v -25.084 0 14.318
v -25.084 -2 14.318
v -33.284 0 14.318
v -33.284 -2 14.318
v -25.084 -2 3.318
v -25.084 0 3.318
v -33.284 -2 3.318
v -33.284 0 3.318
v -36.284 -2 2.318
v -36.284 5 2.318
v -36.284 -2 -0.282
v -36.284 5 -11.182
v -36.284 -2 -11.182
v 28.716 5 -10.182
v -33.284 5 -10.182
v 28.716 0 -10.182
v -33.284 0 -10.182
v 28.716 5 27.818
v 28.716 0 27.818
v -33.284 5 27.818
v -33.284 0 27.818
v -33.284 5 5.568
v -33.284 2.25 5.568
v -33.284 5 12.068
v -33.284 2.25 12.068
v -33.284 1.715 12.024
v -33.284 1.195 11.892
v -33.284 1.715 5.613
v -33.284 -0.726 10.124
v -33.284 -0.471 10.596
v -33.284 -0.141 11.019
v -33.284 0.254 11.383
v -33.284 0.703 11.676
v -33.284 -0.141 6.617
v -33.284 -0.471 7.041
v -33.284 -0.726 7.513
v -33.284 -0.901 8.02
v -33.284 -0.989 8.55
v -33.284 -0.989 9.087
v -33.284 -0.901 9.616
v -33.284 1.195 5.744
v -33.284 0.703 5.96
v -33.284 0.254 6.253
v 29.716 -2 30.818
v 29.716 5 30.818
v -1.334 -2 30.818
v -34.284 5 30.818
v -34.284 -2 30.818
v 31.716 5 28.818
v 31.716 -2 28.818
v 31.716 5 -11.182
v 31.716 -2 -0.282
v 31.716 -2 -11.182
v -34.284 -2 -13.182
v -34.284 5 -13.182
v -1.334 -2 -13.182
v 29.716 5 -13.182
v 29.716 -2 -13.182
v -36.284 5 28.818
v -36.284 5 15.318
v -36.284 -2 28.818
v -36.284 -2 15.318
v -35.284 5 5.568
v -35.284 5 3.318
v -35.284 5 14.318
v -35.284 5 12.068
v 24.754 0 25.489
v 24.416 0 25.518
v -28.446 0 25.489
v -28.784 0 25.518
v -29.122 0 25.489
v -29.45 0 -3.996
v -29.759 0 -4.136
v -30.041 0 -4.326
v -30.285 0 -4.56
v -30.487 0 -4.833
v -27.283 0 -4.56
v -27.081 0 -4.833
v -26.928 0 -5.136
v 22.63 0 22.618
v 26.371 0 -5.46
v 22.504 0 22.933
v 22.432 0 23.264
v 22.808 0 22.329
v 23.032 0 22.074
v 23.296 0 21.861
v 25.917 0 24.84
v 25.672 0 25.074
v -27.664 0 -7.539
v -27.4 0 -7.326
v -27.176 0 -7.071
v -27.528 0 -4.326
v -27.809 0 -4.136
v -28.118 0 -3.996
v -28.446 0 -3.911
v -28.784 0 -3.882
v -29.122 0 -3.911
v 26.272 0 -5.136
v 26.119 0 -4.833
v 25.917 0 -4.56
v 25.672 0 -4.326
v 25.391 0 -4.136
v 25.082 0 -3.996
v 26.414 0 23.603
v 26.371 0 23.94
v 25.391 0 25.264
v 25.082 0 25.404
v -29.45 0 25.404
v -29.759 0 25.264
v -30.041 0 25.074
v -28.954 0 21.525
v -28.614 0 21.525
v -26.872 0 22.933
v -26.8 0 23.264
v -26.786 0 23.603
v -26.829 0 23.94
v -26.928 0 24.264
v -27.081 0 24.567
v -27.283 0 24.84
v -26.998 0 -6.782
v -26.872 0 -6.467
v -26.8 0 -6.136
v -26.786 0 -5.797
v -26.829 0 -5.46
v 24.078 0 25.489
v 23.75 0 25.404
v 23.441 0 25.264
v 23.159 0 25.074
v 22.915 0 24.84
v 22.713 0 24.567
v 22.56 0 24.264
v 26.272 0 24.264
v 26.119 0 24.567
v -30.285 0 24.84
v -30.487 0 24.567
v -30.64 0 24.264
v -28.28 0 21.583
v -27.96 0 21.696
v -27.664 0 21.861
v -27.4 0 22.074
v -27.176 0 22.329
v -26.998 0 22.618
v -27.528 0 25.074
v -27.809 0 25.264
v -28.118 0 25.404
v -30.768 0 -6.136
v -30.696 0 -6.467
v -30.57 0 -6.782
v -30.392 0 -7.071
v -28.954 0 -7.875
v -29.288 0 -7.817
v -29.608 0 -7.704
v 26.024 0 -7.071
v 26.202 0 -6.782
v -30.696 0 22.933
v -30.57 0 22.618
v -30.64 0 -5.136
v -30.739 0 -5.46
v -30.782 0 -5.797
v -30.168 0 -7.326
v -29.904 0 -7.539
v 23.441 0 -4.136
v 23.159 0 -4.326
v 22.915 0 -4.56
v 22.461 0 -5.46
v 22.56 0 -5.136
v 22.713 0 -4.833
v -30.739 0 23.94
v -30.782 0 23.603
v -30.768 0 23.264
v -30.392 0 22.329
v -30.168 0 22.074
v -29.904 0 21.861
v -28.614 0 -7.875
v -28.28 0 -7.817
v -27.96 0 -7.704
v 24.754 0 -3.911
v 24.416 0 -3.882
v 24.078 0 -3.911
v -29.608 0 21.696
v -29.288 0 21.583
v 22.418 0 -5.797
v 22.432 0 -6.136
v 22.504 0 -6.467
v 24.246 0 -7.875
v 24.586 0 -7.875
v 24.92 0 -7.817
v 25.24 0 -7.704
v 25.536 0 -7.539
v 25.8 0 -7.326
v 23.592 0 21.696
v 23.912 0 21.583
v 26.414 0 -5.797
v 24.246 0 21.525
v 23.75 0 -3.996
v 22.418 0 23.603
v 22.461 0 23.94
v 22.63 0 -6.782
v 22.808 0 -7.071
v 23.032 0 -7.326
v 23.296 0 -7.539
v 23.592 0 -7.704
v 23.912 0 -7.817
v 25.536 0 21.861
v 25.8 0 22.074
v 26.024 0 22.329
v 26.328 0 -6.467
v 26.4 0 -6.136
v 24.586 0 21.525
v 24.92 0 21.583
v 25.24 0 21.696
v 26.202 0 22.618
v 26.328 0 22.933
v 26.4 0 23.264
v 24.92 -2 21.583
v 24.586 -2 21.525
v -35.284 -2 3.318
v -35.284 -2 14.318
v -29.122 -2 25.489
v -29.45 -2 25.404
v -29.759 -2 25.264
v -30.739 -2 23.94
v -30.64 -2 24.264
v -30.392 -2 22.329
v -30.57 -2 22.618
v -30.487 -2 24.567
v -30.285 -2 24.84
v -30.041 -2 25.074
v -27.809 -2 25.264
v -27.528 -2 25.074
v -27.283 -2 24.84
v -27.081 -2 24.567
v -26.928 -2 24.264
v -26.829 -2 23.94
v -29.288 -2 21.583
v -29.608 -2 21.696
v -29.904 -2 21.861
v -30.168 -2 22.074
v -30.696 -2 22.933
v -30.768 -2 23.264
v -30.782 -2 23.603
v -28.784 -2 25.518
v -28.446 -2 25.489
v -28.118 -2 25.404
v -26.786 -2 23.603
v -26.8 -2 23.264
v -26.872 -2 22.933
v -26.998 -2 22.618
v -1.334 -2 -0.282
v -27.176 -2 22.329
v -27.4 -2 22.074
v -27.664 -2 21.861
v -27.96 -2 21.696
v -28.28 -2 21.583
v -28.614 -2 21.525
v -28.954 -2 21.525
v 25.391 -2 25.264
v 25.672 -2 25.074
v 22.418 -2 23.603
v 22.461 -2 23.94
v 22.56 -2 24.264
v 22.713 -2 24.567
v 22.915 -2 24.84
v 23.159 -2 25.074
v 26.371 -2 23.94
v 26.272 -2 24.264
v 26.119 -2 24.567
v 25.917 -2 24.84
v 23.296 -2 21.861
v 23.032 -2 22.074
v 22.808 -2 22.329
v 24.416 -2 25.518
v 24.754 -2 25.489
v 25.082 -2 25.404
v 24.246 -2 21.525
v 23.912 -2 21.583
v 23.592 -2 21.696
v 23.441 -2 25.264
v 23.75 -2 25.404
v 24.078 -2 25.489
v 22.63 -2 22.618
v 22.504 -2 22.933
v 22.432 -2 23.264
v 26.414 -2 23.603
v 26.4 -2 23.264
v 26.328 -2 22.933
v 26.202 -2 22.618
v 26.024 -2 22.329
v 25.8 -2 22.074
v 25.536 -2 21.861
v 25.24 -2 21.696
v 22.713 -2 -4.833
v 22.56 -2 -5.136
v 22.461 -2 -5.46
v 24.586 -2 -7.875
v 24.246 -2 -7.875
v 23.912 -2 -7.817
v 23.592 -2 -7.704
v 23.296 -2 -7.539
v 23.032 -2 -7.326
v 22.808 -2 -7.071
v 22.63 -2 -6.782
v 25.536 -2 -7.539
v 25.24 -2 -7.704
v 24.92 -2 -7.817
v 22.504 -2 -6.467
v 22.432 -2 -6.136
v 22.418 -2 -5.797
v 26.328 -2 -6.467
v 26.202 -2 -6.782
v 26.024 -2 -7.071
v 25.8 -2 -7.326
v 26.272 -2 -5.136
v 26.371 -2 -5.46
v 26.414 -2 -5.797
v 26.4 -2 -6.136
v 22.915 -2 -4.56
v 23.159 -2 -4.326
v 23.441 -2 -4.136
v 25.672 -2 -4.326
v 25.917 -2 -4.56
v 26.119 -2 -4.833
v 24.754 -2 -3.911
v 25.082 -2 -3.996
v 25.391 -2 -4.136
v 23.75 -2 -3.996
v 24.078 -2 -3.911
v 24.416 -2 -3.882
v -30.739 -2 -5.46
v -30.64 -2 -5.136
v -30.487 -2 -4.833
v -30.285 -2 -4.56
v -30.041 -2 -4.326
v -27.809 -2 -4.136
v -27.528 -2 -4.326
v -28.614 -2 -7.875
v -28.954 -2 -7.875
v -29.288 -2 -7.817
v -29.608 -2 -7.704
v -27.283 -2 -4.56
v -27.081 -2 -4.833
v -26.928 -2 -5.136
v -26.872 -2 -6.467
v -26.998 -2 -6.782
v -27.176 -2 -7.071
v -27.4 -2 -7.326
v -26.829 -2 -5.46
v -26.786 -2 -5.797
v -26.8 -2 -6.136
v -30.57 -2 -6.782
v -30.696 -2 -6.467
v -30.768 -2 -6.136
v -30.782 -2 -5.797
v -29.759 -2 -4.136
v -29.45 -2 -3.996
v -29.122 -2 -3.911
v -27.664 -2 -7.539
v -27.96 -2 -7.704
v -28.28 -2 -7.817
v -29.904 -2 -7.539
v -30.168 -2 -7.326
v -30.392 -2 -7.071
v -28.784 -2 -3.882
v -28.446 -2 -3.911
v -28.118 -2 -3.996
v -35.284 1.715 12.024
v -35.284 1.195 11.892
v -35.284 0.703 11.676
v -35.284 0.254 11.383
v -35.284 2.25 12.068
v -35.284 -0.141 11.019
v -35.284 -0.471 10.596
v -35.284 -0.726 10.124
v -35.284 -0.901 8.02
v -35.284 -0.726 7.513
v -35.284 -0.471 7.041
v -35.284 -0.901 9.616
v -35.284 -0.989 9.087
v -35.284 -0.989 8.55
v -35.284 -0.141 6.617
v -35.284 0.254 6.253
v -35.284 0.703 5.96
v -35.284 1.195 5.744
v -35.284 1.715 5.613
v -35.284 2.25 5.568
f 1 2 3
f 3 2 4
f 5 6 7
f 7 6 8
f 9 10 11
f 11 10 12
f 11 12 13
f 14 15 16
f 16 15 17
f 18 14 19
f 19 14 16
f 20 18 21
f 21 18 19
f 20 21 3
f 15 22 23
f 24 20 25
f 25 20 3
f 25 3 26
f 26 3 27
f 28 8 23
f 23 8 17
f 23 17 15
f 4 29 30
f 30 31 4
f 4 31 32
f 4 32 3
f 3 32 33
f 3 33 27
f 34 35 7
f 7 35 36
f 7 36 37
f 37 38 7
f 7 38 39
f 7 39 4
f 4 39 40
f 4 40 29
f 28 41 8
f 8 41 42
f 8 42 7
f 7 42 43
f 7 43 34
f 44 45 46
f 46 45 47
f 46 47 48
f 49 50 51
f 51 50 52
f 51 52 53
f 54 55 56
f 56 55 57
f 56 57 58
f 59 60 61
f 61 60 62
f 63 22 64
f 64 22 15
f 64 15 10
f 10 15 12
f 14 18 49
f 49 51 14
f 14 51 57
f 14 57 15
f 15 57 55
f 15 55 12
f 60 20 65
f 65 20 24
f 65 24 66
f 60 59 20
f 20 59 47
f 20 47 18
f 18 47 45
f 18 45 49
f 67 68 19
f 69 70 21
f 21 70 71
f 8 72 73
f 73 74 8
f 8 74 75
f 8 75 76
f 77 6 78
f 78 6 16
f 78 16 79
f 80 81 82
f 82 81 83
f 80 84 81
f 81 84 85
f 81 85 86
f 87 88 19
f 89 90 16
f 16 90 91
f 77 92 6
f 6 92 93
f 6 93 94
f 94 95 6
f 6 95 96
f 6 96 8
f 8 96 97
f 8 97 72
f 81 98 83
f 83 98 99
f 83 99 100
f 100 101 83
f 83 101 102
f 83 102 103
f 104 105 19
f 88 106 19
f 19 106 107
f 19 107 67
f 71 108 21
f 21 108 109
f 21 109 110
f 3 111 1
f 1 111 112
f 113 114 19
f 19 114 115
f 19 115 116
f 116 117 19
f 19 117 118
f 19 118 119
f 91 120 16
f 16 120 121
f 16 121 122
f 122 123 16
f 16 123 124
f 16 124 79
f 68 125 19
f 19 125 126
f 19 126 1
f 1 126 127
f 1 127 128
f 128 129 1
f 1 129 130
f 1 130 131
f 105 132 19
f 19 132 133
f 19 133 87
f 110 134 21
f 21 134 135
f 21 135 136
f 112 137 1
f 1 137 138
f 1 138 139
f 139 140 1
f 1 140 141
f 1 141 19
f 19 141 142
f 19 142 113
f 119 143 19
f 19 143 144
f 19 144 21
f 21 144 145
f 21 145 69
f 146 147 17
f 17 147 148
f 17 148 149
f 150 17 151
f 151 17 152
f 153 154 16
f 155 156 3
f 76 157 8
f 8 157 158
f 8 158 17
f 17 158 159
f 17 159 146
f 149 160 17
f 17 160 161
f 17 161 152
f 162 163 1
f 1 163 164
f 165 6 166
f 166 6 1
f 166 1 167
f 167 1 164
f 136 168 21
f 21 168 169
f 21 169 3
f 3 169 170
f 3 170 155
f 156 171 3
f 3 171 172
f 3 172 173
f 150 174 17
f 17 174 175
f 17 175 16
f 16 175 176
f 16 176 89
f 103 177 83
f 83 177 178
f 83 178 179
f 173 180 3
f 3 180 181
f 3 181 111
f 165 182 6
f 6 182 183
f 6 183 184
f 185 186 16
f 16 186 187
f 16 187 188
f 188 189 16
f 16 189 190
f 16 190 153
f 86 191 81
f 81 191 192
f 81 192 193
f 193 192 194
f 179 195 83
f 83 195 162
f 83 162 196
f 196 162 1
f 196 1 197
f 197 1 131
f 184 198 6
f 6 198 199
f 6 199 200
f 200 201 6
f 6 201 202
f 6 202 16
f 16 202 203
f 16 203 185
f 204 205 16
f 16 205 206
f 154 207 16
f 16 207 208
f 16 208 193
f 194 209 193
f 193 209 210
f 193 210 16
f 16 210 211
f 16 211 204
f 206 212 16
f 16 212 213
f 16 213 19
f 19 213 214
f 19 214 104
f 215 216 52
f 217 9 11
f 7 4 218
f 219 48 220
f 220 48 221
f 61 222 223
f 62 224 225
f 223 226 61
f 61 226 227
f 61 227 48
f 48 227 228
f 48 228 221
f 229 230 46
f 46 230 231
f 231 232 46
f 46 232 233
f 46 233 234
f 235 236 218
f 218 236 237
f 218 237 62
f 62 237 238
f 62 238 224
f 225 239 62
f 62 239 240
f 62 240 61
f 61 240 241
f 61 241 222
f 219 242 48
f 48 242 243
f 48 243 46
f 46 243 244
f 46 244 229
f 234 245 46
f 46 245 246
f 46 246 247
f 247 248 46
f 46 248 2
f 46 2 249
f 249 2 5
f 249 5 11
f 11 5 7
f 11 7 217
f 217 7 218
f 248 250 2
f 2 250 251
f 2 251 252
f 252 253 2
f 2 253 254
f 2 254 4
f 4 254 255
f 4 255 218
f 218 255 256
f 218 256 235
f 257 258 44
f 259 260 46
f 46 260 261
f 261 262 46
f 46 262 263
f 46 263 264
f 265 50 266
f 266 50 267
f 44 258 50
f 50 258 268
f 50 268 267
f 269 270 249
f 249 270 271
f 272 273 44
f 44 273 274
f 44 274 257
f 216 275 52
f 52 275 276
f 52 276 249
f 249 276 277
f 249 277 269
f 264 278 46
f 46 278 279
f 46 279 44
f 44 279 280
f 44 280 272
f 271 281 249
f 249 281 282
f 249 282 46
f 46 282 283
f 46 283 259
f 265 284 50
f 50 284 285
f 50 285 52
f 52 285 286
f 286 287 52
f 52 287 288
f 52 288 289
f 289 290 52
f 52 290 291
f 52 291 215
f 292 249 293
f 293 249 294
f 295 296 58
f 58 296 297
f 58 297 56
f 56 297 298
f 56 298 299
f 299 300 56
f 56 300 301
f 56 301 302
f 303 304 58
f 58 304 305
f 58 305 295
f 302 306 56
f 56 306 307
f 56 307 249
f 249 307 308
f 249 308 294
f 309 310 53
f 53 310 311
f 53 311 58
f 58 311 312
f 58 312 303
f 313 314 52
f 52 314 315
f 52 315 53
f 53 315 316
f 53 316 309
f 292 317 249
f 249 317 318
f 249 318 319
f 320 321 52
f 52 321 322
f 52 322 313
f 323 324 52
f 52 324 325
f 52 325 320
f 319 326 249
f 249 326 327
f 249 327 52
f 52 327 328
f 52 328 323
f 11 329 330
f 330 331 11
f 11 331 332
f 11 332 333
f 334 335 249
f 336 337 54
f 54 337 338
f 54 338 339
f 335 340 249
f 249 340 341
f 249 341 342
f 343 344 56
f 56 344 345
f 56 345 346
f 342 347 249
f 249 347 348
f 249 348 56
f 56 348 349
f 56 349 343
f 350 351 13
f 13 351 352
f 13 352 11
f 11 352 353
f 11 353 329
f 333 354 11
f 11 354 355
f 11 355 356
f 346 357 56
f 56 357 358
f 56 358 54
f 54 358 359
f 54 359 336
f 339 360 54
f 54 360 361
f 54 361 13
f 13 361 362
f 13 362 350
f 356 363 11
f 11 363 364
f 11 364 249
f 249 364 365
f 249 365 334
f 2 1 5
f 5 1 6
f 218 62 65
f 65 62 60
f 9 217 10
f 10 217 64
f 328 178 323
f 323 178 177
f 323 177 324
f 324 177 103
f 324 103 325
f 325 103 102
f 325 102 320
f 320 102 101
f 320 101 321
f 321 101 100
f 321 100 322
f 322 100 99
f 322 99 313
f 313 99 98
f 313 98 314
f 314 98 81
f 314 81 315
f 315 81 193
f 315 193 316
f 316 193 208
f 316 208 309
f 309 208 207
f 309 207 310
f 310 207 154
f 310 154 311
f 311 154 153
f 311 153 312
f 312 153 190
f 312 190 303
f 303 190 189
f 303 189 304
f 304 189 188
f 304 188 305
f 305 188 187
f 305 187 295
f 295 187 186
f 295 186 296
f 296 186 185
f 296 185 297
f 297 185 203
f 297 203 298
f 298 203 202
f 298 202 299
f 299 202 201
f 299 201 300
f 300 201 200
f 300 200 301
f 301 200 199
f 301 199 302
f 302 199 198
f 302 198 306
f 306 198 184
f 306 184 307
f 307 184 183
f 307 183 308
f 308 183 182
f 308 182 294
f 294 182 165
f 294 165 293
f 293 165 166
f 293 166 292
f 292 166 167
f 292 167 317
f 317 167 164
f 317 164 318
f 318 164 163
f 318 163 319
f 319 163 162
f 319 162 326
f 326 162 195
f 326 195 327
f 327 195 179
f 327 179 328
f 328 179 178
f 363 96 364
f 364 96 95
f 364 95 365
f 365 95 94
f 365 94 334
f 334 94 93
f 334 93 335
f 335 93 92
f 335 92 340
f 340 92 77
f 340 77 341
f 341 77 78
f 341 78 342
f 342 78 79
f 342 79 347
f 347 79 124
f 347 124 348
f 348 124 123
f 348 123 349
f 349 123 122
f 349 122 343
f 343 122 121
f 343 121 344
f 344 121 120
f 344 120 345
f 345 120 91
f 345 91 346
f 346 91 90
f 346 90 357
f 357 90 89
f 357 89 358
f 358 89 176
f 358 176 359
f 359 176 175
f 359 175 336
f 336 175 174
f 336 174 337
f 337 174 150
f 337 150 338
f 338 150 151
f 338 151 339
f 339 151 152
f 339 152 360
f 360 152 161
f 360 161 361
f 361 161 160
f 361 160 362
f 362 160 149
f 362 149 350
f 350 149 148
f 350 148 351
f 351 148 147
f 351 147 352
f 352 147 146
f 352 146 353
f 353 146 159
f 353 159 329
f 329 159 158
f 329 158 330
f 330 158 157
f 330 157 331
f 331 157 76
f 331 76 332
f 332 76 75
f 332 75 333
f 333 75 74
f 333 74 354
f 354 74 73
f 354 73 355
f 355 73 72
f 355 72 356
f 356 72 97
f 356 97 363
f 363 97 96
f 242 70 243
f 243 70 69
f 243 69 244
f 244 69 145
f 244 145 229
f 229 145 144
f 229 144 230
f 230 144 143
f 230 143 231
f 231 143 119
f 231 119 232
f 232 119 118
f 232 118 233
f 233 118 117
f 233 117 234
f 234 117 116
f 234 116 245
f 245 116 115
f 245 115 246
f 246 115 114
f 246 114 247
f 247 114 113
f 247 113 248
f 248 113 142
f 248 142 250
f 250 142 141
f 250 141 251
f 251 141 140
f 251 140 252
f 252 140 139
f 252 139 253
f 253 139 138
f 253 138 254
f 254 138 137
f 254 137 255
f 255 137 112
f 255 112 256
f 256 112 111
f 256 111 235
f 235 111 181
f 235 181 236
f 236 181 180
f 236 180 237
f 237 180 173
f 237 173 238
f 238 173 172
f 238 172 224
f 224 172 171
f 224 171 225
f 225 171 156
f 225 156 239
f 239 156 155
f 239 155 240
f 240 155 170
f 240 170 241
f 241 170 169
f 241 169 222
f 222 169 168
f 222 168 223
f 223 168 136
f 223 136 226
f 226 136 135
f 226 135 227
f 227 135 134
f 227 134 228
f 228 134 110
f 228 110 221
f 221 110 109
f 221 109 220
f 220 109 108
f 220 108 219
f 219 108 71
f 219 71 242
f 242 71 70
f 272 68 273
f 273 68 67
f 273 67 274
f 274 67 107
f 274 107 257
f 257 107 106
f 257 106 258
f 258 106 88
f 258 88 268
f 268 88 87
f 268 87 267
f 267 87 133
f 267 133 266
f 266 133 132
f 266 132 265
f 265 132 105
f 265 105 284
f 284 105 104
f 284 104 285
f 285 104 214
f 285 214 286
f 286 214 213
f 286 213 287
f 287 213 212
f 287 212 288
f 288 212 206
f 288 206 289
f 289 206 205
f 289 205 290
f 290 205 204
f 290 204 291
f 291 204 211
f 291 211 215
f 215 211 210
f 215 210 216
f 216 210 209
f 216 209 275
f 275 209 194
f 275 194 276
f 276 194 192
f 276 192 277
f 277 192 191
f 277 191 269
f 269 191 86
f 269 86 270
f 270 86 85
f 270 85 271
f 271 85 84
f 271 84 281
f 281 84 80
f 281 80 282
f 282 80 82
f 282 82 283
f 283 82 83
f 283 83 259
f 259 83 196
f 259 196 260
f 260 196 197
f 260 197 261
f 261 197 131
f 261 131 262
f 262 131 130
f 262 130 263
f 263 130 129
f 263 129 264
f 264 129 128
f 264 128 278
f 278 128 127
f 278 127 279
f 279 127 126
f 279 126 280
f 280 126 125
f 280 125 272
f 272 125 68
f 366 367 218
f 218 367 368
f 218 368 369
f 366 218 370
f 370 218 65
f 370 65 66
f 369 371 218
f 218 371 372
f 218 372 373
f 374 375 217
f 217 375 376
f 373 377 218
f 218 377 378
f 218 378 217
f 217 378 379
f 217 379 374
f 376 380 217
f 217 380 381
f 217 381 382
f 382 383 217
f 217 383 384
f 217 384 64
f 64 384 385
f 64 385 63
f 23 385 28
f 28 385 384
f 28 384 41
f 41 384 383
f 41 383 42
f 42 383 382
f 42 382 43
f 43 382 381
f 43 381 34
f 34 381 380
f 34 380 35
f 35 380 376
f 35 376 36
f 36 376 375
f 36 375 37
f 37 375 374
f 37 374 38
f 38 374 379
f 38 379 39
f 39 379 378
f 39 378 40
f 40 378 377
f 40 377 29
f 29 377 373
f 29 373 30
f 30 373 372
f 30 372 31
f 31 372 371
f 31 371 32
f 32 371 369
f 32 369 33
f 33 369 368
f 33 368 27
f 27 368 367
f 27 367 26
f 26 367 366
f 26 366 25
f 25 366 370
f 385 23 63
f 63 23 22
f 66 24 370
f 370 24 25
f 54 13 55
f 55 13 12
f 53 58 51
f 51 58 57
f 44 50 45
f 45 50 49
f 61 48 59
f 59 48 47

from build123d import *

# Parameters (mm, degrees)
BOSS_EXTRUDE1_DEPTH = 5
SKETCH2_W           = 68
SKETCH2_H           = 44
BOSS_EXTRUDE2_DEPTH = 2
SKETCH3_W           = 11
SKETCH3_H           = 2
CUT_EXTRUDE1_DEPTH  = 11.2
CHAMFER1_SIZE       = 1
SKETCH4_R           = 2
CUT_EXTRUDE2_DEPTH  = 10
SKETCH6_W           = 2
SKETCH6_H           = 7
BOSS_EXTRUDE3_DEPTH = 20
CUT_EXTRUDE3_DEPTH  = 5
CHAMFER2_SIZE       = 2


with BuildPart() as part:
    # Sketch1 → Boss-Extrude1 (new body)
    with BuildSketch(Plane(origin=(0, 0, 0), x_dir=(1, 0, 0), z_dir=(0, 1, 0))):
        Polygon((-33.284090909, -14.318181818), (-33.284090909, -27.818181818), (28.715909091, -27.818181818), (28.715909091, 10.181818182), (-33.284090909, 10.181818182), (-33.284090909, -3.318181818), (-36.284090909, -3.318181818), (-36.284090909, 13.181818182), (31.715909091, 13.181818182), (31.715909091, -30.818181818), (-36.284090909, -30.818181818), (-36.284090909, -14.318181818), align=None)
    extrude(amount=BOSS_EXTRUDE1_DEPTH)

    # Sketch2 → Boss-Extrude2 (add)
    with BuildSketch(Plane.XZ):
        with Locations((-2.284090909, 8.818181818)):
            Rectangle(SKETCH2_W, SKETCH2_H)
    extrude(amount=BOSS_EXTRUDE2_DEPTH)

    # Sketch3 → Cut-Extrude1 (cut)
    with BuildSketch(Plane.ZY.offset(36.284090909)):
        with Locations((8.818181818, -1)):
            Rectangle(SKETCH3_W, SKETCH3_H)
    extrude(amount=-CUT_EXTRUDE1_DEPTH, mode=Mode.SUBTRACT)

    # Chamfer1
    chamfer1_edges = [part.edges().sort_by_distance(p)[0] for p in [
        (-36.284090909, 1.5, 3.318181818),
        (-36.284090909, 1.5, 14.318181818),
    ]]
    chamfer(chamfer1_edges, length=CHAMFER1_SIZE)

    # Sketch4 → Cut-Extrude2 (cut)
    with BuildSketch(Plane(origin=(0, 0, 0), x_dir=(1, 0, 0), z_dir=(0, 1, 0))):
        with Locations(Location((24.415909091, 5.881818182, 0), (0, 0, 270))):
            Circle(SKETCH4_R)
        with Locations(Location((24.415909091, -23.518181818, 0), (0, 0, 270))):
            Circle(SKETCH4_R)
        with Locations(Location((-28.784090909, -23.518181818, 0), (0, 0, 270))):
            Circle(SKETCH4_R)
        with Locations(Location((-28.784090909, 5.881818182, 0), (0, 0, 270))):
            Circle(SKETCH4_R)
    extrude(amount=-CUT_EXTRUDE2_DEPTH, mode=Mode.SUBTRACT)

    # Sketch6 → Boss-Extrude3 (add)
    with BuildSketch(Plane(origin=(0, 0, 14.318181818), x_dir=(-1, 0, 0), z_dir=(0, 0, -1))):
        with Locations((34.284090909, 1.5)):
            Rectangle(SKETCH6_W, SKETCH6_H)
    extrude(amount=BOSS_EXTRUDE3_DEPTH)

    # Sketch7 → Cut-Extrude3 (cut)
    with BuildSketch(Plane.ZY.offset(35.284090909)):
        with BuildLine():
            Line((5.568181818, 2.25), (5.568181818, 5))
            Line((5.568181818, 5), (12.068181818, 5))
            Line((12.068181818, 5), (12.068181818, 2.25))
            ThreePointArc((12.068181818, 2.25), (8.818181818, -1), (5.568181818, 2.25))
        make_face()
    extrude(amount=-CUT_EXTRUDE3_DEPTH, mode=Mode.SUBTRACT)

    # Chamfer2
    chamfer2_edges = [part.edges().sort_by_distance(p)[0] for p in [
        (-36.284090909, 1.5, -13.181818182),
        (31.715909091, 1.5, -13.181818182),
        (31.715909091, 1.5, 30.818181818),
        (-36.284090909, 1.5, 30.818181818),
    ]]
    chamfer(chamfer2_edges, length=CHAMFER2_SIZE)


solid = part.part
